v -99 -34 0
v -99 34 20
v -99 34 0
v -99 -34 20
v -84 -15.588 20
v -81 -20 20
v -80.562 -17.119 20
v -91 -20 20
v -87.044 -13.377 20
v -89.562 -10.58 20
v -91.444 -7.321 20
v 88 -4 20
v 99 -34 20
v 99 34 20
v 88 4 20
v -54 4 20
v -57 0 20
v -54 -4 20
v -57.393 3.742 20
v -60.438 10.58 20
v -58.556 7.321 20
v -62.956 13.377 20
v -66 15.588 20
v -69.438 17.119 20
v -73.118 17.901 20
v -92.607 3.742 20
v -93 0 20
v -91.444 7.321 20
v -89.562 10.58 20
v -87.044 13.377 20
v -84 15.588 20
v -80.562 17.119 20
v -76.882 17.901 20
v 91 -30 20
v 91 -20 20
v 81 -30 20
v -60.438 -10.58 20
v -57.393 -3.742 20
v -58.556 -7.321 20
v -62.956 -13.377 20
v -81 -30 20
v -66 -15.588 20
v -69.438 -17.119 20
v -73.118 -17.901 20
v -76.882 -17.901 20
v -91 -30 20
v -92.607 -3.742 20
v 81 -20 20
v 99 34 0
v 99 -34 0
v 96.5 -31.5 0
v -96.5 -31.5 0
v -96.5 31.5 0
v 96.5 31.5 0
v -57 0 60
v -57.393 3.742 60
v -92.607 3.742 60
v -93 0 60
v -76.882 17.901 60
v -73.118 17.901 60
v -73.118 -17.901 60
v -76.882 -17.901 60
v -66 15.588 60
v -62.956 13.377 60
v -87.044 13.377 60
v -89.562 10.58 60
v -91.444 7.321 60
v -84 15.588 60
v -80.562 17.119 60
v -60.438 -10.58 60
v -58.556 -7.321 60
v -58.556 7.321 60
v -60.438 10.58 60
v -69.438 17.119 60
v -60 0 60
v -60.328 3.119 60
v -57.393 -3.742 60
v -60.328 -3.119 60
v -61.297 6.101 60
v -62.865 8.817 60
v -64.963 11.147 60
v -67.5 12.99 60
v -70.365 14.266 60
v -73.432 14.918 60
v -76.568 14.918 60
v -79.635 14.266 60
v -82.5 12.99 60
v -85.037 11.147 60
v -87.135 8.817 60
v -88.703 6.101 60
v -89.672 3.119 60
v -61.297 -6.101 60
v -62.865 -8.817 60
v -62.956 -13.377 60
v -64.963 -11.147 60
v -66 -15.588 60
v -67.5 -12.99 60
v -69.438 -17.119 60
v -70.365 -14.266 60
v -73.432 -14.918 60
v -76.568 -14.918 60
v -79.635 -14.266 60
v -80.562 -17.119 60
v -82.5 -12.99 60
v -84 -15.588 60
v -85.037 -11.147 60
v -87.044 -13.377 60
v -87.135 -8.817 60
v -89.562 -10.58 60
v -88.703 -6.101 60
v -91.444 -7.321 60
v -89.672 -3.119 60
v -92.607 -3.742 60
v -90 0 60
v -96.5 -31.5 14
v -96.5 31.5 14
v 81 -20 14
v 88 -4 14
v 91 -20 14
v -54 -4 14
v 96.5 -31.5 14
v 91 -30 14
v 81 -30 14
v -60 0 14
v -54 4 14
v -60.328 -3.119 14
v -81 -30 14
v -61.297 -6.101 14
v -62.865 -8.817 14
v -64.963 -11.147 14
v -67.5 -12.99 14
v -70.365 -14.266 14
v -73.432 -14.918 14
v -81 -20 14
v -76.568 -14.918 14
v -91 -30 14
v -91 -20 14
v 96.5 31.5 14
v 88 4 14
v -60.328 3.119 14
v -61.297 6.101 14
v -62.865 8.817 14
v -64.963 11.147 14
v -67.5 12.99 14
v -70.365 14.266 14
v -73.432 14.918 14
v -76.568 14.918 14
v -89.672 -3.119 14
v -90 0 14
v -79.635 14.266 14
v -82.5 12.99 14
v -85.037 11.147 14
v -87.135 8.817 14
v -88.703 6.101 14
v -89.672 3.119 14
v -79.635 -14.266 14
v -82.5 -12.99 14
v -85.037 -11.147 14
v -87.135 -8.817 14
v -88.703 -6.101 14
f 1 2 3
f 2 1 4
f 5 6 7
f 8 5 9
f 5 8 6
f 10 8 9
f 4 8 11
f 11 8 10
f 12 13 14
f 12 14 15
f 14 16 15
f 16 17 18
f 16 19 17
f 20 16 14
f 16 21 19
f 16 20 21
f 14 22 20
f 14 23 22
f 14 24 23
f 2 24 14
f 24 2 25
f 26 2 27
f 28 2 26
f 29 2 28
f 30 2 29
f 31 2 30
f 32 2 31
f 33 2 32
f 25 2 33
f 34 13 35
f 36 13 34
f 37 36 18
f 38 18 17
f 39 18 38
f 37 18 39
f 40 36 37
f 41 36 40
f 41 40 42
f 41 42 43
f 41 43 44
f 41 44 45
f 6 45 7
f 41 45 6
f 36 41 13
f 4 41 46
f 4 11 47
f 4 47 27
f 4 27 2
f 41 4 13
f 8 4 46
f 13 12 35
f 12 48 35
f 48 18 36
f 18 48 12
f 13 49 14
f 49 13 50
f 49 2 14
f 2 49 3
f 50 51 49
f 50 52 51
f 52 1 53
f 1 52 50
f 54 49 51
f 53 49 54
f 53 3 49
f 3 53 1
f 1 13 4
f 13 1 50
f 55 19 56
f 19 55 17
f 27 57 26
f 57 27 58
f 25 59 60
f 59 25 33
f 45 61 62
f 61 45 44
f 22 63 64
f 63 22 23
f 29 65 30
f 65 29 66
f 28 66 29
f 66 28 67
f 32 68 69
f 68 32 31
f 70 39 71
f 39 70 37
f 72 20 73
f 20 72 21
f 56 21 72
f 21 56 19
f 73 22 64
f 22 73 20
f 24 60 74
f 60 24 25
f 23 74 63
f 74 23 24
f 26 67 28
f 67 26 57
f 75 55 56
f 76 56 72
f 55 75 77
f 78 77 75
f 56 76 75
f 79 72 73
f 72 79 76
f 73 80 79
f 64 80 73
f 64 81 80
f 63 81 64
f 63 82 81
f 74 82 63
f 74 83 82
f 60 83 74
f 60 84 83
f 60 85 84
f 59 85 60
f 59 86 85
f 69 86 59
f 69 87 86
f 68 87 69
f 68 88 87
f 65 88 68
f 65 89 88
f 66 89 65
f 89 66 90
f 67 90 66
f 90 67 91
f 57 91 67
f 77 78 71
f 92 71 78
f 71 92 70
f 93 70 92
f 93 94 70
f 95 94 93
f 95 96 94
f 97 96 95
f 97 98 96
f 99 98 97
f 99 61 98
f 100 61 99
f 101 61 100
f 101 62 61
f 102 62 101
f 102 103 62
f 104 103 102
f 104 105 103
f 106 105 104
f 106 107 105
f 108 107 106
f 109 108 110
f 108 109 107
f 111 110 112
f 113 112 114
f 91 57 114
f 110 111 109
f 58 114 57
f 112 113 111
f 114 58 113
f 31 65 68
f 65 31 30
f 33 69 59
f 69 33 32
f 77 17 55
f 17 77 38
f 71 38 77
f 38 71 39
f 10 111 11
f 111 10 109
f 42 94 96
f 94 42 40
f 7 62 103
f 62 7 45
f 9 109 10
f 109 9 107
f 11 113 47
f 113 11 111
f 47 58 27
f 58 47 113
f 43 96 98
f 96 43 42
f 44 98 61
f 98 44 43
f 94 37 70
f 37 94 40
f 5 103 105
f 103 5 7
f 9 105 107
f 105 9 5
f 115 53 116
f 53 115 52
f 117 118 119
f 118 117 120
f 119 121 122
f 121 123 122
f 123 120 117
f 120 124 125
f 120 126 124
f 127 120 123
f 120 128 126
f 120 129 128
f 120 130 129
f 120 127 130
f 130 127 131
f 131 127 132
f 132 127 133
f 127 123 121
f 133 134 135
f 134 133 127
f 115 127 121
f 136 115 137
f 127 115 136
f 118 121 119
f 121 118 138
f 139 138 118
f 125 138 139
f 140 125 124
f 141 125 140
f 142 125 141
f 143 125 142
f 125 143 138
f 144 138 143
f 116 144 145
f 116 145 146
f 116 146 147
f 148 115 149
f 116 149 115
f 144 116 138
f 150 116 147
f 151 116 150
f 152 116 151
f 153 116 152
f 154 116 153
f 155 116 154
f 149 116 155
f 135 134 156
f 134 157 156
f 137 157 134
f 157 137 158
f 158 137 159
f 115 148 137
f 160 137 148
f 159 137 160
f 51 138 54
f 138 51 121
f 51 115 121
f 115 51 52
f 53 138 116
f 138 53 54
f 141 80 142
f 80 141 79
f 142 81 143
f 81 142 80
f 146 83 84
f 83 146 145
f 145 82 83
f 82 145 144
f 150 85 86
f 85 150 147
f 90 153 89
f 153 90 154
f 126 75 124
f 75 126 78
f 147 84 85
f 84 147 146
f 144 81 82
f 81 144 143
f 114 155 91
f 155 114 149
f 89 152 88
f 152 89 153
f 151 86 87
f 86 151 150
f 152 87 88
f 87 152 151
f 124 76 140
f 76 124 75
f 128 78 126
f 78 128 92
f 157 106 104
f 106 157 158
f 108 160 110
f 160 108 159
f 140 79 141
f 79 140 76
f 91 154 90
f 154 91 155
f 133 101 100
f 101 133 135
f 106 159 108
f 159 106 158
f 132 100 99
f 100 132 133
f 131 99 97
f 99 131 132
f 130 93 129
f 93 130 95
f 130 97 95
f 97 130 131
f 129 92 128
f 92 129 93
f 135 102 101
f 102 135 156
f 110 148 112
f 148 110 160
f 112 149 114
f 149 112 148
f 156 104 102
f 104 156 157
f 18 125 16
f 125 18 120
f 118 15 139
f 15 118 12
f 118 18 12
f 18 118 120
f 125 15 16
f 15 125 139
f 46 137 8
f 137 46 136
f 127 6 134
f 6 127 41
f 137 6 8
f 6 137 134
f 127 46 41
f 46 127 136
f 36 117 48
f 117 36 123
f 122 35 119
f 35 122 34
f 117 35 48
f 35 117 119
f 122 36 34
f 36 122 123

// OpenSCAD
/////////////////////////////////////////////////////////////////////////////////
// Adapter for drilling machine in the embedded lab.
//
// Author:              Maximilian Stiefel
// Last modification:   10.06.2017
/////////////////////////////////////////////////////////////////////////////////

/////////////////////////////////////////////////////////////////////////////////
// Vars
/////////////////////////////////////////////////////////////////////////////////
// Allowance
allowance1 = 0.5;
allowance2 = 1;

// Dimensions cuvette
glass_thickness = 6;
cuvette_width = 180 + 2*glass_thickness + allowance2;
cuvette_depth = 50 + 2*glass_thickness + allowance2;

// Dimensions lid
lid_thickness = 3;
lid_width = 180 + 2*glass_thickness + 2*lid_thickness;
lid_depth = 50 + 2*glass_thickness + 2*lid_thickness;
lid_height = 20;

// Dimensions holder heater
heater_diameter = 30; 
heater_offset = 40;
heater_pos = -lid_width/2 + heater_diameter/2 + 2*lid_thickness + 3;

// Dimensions slot for the PCB holder arms
slot_width = lid_width - heater_diameter - 2*lid_thickness - 20;
slot_depth = 8;
slot_height = 1.5 * lid_height;
slot_pos = heater_pos + heater_diameter/2 + lid_thickness + 3;  

// Dimensions service holes for temp. sensor and air tube
service_hole_width = 10;
service_hole_depth = 10;
service_hole_height = lid_height;

/////////////////////////////////////////////////////////////////////////////////
// Action
/////////////////////////////////////////////////////////////////////////////////
difference()
{
	union()
	{
		// Basic lid
		translate([0, 0, lid_height/2])
		cube([lid_width, lid_depth, lid_height], center = true);
		translate([heater_pos, 0, lid_height - 1])
		cylinder(h = heater_offset + 1, r = heater_diameter/2 + lid_thickness);
	}
	union()
	{
		// Depening to put it over the cuvette
		translate([0, 0, (3/8)*lid_height - 1])
		cube([cuvette_width, cuvette_depth, (3/4)*lid_height], center = true);
		// Hole for heater
		translate([heater_pos, 0, -1])
		cylinder(h = heater_offset + lid_height + 2, r = heater_diameter/2);
		// Slot for the PCB holder arms
		translate([slot_pos, -slot_depth/2, 0])
		cube([slot_width, slot_depth, slot_height], center = false);
		
		// Service holes
		translate([-lid_width/2 + lid_thickness + 5, -lid_depth/2 + lid_thickness + 1, (1/2)*lid_height])
		cube([service_hole_width, service_hole_depth, service_hole_height]);
		translate([lid_width/2 - lid_thickness - service_hole_width -5, -lid_depth/2 + lid_thickness + 1, (1/2)*lid_height])
		cube([service_hole_width, service_hole_depth, service_hole_height]);

	}
}
